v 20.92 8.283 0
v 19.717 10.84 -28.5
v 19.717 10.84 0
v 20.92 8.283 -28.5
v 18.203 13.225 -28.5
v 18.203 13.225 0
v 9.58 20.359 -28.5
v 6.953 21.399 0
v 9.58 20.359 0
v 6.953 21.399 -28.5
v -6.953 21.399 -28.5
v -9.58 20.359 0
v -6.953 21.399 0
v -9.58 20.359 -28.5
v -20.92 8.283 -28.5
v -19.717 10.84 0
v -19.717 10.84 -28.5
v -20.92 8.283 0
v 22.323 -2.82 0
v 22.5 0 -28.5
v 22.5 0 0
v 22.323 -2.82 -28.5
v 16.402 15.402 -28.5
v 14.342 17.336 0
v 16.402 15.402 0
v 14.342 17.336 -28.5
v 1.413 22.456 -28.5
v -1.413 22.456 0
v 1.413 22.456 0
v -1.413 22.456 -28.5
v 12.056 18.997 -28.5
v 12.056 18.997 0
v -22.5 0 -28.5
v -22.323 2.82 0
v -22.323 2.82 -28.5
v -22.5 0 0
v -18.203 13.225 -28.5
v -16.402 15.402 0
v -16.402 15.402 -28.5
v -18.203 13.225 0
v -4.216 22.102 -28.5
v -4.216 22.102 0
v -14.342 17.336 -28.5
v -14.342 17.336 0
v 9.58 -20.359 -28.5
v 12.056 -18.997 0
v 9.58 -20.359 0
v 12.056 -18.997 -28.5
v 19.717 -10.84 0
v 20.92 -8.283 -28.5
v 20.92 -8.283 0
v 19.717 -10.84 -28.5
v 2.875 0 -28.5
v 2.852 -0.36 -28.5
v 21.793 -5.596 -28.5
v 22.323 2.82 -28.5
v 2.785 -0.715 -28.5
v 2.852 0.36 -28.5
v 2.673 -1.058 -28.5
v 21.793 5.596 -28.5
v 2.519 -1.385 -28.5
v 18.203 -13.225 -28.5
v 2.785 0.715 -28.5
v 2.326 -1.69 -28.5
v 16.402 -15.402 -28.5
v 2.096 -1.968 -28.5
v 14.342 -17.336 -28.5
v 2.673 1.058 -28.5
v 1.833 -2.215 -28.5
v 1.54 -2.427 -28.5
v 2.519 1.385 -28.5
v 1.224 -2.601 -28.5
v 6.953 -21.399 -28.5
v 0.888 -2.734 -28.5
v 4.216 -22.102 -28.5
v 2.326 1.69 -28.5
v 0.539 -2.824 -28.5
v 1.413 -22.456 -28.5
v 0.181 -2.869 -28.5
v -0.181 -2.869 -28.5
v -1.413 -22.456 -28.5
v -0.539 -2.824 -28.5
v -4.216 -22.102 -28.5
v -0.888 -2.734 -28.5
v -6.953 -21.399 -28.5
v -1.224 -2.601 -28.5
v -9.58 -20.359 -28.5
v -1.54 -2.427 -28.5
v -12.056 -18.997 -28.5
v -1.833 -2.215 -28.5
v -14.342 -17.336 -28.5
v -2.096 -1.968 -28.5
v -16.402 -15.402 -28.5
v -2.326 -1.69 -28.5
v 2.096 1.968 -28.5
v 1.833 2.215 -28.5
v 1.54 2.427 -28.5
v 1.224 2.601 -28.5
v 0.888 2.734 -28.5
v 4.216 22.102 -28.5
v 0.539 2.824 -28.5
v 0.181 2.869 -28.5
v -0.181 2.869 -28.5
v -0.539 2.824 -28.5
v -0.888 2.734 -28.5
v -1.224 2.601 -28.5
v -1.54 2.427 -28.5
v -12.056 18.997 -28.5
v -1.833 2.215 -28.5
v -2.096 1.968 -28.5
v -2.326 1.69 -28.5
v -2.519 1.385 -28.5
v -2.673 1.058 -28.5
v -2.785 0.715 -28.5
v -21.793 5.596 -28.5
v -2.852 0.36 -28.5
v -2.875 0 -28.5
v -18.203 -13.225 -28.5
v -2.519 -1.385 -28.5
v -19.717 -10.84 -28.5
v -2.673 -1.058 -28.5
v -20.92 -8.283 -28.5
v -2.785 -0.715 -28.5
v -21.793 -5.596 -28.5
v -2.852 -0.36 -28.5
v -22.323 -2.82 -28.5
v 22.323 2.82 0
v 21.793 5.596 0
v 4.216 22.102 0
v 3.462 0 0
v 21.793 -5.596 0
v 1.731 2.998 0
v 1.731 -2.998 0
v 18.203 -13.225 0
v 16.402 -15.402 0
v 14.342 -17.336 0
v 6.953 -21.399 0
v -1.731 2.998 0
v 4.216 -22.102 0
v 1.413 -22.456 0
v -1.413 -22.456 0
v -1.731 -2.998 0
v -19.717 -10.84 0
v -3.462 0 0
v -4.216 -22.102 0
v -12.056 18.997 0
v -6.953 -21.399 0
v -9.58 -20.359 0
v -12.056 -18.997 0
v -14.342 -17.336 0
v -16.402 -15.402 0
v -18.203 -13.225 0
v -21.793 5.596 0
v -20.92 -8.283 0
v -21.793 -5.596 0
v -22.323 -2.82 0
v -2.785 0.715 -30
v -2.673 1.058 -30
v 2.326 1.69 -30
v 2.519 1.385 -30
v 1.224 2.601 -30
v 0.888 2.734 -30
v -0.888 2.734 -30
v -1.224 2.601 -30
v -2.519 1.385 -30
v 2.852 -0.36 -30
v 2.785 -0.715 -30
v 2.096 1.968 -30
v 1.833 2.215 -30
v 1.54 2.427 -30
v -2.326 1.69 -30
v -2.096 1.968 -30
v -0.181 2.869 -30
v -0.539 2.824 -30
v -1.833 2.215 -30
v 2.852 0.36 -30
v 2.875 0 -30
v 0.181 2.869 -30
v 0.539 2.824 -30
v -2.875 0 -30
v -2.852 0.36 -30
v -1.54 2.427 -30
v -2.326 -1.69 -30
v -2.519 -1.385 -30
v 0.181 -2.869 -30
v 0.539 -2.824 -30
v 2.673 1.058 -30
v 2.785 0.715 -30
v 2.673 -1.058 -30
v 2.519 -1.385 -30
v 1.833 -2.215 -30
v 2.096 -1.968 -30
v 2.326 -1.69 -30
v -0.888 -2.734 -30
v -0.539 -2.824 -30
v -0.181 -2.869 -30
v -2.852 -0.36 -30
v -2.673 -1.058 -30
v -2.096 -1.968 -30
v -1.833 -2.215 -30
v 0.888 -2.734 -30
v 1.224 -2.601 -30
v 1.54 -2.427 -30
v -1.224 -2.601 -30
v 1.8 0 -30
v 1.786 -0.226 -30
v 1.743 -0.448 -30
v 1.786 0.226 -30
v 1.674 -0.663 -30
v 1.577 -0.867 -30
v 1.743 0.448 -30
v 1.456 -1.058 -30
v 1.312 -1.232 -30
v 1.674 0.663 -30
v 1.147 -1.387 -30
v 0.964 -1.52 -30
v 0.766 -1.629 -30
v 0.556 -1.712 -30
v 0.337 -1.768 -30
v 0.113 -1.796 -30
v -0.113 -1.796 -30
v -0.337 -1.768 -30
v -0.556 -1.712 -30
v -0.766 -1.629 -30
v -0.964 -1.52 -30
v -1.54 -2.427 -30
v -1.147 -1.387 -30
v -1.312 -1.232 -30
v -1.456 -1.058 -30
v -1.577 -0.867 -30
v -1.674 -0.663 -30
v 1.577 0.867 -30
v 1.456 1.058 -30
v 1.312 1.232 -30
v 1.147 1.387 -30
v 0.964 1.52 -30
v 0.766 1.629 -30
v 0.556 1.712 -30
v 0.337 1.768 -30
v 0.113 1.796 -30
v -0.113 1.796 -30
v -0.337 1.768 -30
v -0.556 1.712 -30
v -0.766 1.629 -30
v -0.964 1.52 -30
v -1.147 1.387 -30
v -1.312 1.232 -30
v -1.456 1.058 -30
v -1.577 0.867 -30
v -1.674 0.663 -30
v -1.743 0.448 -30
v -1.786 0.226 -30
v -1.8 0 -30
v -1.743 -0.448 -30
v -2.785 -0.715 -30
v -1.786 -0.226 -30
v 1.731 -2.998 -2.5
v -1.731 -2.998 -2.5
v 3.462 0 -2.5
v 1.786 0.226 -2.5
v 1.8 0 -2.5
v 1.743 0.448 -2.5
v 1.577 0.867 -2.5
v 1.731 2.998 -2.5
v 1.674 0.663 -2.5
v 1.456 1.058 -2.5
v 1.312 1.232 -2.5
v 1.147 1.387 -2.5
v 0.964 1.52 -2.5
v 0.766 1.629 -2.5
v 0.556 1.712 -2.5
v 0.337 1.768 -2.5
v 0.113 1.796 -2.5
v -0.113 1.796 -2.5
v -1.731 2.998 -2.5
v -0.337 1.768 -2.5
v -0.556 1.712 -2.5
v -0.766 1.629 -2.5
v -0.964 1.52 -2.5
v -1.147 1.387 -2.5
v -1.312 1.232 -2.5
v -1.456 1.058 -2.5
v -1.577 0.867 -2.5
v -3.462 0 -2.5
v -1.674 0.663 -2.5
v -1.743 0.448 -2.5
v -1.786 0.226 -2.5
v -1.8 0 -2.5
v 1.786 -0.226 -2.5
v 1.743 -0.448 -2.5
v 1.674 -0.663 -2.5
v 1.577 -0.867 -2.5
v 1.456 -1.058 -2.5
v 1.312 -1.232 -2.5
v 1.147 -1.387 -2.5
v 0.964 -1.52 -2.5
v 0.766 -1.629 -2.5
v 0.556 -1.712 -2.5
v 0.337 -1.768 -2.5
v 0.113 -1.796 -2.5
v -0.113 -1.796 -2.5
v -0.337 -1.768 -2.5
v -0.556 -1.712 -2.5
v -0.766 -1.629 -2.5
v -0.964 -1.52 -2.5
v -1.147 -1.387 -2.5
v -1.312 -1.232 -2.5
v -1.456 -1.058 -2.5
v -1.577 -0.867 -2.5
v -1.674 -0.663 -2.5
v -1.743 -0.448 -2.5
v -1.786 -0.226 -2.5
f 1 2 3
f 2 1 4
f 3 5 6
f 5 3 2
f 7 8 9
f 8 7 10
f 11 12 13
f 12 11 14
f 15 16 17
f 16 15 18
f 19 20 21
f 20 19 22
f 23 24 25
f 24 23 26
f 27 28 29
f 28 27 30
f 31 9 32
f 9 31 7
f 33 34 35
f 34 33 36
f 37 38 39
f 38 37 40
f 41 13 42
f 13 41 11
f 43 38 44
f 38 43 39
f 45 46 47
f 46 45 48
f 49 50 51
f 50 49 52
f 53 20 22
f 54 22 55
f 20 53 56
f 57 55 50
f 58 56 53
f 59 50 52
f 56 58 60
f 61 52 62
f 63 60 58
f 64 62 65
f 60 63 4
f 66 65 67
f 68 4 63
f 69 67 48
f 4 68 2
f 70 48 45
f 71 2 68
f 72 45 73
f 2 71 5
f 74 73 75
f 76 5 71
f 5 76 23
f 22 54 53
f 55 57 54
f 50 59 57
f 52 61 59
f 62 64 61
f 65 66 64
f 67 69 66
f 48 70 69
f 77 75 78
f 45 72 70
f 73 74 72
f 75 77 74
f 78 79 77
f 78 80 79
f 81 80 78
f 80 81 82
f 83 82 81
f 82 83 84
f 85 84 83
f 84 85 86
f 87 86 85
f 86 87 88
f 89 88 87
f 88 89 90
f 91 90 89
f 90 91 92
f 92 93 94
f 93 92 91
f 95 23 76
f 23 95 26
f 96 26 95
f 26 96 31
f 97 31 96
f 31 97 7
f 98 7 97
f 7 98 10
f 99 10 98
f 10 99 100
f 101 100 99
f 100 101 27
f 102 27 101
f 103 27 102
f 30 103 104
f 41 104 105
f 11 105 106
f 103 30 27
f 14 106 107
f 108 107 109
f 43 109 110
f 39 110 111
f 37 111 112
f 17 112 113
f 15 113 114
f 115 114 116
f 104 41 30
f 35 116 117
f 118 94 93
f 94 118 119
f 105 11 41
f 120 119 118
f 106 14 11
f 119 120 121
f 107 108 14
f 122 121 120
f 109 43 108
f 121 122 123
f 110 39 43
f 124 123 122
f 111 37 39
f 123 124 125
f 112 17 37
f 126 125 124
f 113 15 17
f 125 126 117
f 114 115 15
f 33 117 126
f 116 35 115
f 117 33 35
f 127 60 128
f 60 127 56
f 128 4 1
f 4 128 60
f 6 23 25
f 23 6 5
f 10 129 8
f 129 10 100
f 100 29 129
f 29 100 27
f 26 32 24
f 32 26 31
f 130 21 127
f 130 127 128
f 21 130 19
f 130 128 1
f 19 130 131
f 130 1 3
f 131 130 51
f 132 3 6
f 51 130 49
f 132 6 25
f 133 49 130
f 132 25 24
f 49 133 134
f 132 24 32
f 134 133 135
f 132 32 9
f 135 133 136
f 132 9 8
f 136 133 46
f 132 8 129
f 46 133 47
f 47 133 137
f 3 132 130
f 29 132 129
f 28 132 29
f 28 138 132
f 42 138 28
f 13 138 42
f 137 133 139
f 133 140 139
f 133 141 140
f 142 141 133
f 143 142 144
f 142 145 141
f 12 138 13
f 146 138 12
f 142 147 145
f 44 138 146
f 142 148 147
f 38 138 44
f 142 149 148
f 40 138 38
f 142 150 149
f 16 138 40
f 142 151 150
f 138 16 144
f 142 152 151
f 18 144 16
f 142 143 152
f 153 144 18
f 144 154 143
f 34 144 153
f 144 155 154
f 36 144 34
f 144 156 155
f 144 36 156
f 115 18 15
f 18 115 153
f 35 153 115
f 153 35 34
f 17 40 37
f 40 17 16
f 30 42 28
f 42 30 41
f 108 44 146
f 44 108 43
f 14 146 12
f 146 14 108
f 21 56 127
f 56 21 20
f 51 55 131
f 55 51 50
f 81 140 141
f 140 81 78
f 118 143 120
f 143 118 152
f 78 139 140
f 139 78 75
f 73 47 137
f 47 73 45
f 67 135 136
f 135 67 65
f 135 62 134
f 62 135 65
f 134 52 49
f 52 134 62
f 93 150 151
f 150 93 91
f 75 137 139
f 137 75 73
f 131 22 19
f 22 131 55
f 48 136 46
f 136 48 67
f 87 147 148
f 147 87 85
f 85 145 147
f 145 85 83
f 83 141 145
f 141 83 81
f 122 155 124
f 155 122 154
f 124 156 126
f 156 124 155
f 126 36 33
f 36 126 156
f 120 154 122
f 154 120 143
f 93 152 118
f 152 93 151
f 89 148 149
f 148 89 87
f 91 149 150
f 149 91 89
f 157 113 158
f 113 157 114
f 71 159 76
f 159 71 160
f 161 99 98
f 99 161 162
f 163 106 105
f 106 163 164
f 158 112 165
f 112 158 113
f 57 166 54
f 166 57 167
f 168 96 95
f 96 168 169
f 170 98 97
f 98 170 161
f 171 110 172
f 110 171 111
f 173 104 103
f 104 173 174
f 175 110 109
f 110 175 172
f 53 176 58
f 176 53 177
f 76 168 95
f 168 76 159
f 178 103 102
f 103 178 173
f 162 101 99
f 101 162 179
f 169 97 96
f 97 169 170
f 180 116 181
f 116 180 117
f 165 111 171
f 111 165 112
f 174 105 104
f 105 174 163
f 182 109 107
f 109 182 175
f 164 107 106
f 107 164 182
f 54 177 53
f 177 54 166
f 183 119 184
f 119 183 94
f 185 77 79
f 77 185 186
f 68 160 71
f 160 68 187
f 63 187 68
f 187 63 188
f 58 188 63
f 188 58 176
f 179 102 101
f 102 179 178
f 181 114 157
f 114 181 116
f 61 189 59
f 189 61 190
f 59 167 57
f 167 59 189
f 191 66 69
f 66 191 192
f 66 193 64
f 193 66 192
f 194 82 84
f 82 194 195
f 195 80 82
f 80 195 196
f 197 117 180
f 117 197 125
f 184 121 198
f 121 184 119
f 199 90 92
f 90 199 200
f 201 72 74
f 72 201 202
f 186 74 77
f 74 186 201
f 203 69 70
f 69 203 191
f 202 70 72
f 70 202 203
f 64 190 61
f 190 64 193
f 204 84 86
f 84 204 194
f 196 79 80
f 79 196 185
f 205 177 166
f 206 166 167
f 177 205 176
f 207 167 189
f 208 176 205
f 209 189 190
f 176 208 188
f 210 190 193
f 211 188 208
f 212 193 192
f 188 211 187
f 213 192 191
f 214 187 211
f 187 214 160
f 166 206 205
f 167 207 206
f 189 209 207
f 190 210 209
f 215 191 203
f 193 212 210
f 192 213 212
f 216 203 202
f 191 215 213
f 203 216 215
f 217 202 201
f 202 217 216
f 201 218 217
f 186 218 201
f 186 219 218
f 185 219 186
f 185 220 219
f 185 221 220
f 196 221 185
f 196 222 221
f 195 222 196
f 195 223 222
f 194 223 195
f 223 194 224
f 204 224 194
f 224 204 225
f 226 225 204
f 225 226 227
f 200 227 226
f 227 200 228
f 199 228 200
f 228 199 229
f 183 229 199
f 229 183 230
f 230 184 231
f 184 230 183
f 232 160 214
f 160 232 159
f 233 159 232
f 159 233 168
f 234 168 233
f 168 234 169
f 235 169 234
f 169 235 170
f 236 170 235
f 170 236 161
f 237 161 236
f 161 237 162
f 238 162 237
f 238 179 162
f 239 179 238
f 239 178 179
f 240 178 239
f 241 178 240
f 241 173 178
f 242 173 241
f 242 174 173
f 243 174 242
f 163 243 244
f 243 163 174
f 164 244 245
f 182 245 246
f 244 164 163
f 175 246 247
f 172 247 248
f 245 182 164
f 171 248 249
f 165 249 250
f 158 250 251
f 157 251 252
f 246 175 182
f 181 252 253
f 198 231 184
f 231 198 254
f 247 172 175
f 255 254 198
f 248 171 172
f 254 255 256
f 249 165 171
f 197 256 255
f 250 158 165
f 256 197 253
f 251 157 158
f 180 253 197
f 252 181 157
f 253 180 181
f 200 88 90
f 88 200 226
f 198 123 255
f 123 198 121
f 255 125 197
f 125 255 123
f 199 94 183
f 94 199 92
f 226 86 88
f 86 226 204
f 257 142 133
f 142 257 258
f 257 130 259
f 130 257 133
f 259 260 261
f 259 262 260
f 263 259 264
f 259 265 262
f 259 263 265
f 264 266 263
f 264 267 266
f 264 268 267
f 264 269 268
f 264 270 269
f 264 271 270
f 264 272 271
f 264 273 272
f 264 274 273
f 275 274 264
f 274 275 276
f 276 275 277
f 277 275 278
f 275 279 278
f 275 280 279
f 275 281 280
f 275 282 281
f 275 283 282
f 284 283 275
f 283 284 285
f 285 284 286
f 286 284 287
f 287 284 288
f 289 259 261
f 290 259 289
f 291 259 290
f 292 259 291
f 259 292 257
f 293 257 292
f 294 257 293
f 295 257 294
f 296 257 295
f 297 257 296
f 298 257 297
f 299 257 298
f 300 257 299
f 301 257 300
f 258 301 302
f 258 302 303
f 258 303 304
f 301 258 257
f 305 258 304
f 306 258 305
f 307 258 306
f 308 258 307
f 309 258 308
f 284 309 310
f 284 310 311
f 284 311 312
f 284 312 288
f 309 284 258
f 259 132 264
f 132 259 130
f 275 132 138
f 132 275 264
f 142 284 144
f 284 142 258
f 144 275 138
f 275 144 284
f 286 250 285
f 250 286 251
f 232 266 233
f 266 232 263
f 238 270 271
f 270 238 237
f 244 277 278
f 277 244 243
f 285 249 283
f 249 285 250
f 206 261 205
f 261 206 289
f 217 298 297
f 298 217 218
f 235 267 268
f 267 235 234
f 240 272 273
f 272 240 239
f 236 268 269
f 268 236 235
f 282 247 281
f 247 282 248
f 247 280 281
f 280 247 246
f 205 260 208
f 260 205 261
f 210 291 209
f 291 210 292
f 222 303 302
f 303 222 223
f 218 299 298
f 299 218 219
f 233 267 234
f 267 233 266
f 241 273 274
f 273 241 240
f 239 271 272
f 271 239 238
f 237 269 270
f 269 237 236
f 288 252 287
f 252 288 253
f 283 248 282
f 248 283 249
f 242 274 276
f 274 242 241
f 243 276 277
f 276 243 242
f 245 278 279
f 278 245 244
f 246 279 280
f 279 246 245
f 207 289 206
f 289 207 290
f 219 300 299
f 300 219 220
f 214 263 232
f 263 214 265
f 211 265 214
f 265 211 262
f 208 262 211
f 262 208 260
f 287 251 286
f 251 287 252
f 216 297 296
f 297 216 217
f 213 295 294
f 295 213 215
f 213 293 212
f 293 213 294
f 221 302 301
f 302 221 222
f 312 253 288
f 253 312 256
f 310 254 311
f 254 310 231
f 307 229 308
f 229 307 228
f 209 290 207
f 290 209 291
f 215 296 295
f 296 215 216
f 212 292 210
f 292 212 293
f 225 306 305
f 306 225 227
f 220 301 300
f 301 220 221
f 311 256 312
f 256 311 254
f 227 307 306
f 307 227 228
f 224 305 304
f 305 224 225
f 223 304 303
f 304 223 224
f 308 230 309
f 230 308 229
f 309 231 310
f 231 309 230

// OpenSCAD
$fn = 50;


difference() {
	union() {
		translate(v = [0, 0, -28.5000000000]) {
			cylinder(h = 28.5000000000, r = 22.5000000000);
		}
		#translate(v = [0, 0, -30.0000000000]) {
			cylinder(h = 30, r = 2.8750000000);
		}
	}
	union() {
		translate(v = [0, 0, 0]) {
			rotate(a = [0, 0, 0]) {
				difference() {
					union() {
						translate(v = [0, 0, -2.5000000000]) {
							linear_extrude(height = 2.5000000000) {
								polygon(points = [[3.4620000000, 0.0000000000], [1.7310000000, 2.9981799479], [-1.7310000000, 2.9981799479], [-3.4620000000, 0.0000000000], [-1.7310000000, -2.9981799479], [1.7310000000, -2.9981799479]]);
							}
						}
					}
					union();
				}
			}
		}
		#translate(v = [0, 0, -100.0000000000]) {
			cylinder(h = 200, r = 1.8000000000);
		}
	}
}
